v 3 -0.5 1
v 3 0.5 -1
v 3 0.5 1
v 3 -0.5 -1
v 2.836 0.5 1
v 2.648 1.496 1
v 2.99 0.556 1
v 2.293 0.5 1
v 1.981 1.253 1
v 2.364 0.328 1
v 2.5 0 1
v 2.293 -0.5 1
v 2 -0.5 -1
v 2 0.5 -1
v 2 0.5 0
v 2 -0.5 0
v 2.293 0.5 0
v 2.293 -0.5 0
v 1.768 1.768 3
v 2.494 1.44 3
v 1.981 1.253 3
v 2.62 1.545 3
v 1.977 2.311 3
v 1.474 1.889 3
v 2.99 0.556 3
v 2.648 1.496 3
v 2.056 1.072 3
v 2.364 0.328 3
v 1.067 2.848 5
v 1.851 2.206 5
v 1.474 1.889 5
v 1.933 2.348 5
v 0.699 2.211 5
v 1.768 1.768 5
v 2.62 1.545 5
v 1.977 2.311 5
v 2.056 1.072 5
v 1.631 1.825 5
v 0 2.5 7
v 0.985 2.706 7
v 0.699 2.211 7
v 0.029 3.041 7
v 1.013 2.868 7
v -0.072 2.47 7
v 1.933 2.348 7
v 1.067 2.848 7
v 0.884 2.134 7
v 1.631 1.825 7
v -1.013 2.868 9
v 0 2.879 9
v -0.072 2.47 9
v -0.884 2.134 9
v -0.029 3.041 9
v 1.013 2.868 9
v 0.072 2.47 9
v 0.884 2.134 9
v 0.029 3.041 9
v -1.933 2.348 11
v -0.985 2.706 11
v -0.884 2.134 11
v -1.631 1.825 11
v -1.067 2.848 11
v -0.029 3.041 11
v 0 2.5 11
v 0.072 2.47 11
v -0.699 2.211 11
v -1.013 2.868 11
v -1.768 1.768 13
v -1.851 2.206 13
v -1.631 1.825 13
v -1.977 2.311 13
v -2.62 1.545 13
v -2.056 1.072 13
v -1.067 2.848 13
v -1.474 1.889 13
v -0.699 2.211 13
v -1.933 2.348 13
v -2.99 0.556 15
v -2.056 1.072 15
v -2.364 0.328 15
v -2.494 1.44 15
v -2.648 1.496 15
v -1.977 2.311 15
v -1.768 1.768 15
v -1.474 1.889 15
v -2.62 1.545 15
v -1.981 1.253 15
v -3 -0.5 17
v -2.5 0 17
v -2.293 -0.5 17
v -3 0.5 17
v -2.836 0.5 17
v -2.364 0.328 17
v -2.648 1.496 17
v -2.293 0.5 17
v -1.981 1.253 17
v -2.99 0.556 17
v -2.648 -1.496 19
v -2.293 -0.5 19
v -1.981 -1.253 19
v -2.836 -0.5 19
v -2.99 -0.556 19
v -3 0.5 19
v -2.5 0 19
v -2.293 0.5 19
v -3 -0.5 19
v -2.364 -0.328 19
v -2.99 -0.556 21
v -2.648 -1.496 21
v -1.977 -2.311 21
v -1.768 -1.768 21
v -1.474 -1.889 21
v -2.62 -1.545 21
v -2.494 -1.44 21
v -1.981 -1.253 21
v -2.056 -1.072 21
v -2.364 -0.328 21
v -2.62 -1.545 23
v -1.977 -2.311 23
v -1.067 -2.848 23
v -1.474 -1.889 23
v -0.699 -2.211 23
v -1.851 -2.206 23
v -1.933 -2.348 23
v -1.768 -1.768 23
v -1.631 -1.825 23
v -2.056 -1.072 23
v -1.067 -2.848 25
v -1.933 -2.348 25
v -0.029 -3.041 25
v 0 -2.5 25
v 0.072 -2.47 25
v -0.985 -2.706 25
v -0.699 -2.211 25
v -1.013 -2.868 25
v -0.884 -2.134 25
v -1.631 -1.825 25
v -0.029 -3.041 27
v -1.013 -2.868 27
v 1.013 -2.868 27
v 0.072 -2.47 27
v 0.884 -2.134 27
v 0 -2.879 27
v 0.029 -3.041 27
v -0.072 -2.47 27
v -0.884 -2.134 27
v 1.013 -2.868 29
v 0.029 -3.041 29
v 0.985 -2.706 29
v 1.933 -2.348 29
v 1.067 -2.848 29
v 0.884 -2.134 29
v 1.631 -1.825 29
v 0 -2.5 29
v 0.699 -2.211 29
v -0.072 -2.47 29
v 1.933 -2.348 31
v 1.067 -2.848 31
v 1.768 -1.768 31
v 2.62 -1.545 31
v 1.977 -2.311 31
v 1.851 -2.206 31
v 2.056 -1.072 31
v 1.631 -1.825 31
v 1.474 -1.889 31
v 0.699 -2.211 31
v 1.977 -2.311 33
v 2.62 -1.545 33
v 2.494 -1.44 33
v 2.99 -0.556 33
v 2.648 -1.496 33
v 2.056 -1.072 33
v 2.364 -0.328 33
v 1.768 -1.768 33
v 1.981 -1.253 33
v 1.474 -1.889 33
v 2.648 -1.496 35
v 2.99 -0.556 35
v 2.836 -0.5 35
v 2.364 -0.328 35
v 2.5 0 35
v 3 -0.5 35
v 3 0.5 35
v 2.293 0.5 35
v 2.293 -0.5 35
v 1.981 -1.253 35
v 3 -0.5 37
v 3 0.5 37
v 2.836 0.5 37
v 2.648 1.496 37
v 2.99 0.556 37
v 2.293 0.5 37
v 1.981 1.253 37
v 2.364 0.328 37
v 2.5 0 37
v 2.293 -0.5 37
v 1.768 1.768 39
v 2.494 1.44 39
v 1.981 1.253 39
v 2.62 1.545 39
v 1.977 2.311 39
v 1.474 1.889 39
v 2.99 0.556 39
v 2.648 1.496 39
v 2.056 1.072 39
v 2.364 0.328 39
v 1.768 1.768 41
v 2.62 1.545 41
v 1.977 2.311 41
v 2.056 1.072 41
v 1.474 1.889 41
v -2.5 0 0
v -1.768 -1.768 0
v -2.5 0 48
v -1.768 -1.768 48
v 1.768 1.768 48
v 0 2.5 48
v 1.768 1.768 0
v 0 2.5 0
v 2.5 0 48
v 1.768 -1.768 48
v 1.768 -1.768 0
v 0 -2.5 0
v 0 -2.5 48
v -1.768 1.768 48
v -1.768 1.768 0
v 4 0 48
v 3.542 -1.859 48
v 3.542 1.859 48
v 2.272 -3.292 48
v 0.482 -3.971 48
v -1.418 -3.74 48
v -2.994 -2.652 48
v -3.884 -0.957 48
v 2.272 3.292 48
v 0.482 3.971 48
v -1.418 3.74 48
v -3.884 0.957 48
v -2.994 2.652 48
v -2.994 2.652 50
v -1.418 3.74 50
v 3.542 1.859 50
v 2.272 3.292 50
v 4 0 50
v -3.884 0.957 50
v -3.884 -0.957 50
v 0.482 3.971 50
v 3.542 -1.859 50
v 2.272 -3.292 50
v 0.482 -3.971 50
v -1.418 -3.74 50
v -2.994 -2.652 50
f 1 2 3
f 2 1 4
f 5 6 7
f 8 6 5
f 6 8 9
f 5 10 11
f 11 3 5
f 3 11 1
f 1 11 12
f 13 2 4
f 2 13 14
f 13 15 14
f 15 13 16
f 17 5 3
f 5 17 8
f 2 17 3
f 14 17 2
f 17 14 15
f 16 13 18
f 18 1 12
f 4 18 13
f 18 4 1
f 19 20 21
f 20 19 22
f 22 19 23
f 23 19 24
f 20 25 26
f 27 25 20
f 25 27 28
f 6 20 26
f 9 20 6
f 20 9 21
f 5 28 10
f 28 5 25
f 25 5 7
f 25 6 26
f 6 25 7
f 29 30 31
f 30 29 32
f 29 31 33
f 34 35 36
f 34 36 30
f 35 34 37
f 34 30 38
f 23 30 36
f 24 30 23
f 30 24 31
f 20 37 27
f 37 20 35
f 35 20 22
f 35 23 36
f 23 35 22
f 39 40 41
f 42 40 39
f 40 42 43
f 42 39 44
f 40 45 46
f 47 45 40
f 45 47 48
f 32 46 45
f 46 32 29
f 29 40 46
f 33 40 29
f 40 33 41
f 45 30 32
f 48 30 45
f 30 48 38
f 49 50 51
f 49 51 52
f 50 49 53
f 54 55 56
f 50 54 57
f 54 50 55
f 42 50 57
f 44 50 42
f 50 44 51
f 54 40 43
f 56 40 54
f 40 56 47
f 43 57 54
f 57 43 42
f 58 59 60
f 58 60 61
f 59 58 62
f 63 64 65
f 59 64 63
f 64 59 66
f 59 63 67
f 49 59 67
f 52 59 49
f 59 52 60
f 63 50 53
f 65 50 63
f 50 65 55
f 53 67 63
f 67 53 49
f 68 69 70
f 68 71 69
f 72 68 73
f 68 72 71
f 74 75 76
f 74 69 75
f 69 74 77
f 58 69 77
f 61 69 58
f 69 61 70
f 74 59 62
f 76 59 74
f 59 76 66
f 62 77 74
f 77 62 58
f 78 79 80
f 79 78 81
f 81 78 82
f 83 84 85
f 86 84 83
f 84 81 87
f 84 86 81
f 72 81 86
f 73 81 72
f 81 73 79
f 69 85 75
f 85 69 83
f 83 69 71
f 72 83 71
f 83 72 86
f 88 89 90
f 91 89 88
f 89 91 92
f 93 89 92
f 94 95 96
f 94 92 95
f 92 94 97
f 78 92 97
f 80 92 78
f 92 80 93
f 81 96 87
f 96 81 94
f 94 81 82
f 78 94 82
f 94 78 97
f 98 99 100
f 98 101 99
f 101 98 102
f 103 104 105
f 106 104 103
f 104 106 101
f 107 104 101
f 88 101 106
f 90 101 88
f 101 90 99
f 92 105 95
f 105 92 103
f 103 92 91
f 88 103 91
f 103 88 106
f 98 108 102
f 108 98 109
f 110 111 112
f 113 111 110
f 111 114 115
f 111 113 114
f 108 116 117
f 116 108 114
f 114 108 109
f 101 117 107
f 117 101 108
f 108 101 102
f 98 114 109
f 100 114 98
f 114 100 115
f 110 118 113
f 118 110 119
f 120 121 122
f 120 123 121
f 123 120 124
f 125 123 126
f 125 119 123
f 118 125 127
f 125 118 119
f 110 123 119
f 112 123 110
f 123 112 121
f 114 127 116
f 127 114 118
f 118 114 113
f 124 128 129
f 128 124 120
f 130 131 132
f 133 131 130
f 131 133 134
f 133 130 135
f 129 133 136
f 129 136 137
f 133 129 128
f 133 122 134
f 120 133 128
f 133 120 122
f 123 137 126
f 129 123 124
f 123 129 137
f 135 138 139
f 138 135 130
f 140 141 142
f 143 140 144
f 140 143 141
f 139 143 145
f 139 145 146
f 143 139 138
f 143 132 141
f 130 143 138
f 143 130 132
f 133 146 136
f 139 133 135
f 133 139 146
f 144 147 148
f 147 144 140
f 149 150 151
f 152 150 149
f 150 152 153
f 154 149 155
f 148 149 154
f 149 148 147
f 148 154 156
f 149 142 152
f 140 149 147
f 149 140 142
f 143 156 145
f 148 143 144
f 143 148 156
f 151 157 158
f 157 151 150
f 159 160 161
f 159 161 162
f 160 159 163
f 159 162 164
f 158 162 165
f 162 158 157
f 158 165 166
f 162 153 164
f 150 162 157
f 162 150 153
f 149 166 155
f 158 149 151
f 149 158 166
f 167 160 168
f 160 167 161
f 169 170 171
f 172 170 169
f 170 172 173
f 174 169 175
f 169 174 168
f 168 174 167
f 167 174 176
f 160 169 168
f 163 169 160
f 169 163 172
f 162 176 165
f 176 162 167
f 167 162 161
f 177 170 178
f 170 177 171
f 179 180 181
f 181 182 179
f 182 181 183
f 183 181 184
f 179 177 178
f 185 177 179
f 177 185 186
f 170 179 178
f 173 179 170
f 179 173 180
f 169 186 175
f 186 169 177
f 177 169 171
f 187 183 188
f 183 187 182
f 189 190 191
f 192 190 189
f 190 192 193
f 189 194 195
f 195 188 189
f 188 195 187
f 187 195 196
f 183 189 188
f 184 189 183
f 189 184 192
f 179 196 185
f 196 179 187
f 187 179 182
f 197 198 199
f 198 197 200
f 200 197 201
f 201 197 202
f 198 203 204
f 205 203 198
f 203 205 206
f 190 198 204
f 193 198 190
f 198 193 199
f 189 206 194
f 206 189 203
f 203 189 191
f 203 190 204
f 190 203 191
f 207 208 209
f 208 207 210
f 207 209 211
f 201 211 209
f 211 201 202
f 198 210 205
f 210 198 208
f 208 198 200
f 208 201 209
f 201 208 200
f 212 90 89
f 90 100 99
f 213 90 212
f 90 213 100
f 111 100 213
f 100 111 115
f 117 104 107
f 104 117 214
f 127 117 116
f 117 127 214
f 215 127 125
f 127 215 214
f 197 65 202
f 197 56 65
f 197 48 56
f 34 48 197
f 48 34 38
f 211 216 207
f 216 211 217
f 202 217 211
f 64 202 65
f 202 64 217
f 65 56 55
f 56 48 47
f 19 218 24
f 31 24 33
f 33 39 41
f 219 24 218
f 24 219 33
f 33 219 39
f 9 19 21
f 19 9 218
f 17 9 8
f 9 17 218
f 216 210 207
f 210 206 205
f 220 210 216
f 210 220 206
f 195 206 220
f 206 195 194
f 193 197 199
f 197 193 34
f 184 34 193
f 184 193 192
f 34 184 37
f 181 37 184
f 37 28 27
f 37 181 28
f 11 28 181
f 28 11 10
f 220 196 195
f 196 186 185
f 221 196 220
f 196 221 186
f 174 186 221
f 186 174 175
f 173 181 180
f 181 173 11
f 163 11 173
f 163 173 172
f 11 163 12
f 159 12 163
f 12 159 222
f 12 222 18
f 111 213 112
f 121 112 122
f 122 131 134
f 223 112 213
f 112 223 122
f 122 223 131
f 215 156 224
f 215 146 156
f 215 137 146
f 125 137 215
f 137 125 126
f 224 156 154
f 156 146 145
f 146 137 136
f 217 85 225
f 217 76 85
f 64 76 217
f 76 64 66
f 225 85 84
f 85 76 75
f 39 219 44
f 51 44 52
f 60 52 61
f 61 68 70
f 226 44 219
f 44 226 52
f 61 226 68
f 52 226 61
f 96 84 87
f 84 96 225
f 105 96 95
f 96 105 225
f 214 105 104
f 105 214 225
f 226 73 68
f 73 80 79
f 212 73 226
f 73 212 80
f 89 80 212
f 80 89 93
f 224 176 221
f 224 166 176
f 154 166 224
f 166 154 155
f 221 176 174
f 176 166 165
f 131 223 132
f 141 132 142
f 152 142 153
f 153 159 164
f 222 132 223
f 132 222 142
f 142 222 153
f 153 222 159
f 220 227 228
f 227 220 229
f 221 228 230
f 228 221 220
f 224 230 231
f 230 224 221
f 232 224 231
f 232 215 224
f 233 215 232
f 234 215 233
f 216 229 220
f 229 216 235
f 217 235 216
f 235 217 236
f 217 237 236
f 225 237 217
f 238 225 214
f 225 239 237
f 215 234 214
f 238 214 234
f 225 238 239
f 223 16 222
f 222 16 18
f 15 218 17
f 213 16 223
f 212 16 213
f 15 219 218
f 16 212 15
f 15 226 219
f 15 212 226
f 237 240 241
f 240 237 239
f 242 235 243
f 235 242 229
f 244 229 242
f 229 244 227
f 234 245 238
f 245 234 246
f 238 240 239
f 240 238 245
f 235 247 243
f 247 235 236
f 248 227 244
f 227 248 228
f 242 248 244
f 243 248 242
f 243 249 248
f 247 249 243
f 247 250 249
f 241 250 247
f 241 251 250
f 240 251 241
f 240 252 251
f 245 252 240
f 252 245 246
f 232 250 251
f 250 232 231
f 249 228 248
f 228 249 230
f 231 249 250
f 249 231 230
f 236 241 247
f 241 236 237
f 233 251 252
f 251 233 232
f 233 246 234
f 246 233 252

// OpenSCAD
// Parameters for the bolt
bolt_length = 50; // Length of the bolt
bolt_diameter = 5; // Diameter of the bolt
head_diameter = 8; // Diameter of the flat head
head_thickness = 2; // Thickness of the flat head
thread_length = 40; // Length of the threaded section

module bolt() {
    // Bolt body
    cylinder(h = bolt_length - head_thickness, d = bolt_diameter, center = false);
    
    // Flat head
    translate([0, 0, bolt_length - head_thickness])
        cylinder(h = head_thickness, d = head_diameter, center = false);
    
    // Threading (visual representation)
    translate([0, 0, 0])
        for (i = [0:2:thread_length]) {
            rotate([0, 0, i * 10])
                translate([bolt_diameter / 2, 0, i])
                    cube([1, 1, 2], center = true);
        }
}

// Render the bolt
bolt();
